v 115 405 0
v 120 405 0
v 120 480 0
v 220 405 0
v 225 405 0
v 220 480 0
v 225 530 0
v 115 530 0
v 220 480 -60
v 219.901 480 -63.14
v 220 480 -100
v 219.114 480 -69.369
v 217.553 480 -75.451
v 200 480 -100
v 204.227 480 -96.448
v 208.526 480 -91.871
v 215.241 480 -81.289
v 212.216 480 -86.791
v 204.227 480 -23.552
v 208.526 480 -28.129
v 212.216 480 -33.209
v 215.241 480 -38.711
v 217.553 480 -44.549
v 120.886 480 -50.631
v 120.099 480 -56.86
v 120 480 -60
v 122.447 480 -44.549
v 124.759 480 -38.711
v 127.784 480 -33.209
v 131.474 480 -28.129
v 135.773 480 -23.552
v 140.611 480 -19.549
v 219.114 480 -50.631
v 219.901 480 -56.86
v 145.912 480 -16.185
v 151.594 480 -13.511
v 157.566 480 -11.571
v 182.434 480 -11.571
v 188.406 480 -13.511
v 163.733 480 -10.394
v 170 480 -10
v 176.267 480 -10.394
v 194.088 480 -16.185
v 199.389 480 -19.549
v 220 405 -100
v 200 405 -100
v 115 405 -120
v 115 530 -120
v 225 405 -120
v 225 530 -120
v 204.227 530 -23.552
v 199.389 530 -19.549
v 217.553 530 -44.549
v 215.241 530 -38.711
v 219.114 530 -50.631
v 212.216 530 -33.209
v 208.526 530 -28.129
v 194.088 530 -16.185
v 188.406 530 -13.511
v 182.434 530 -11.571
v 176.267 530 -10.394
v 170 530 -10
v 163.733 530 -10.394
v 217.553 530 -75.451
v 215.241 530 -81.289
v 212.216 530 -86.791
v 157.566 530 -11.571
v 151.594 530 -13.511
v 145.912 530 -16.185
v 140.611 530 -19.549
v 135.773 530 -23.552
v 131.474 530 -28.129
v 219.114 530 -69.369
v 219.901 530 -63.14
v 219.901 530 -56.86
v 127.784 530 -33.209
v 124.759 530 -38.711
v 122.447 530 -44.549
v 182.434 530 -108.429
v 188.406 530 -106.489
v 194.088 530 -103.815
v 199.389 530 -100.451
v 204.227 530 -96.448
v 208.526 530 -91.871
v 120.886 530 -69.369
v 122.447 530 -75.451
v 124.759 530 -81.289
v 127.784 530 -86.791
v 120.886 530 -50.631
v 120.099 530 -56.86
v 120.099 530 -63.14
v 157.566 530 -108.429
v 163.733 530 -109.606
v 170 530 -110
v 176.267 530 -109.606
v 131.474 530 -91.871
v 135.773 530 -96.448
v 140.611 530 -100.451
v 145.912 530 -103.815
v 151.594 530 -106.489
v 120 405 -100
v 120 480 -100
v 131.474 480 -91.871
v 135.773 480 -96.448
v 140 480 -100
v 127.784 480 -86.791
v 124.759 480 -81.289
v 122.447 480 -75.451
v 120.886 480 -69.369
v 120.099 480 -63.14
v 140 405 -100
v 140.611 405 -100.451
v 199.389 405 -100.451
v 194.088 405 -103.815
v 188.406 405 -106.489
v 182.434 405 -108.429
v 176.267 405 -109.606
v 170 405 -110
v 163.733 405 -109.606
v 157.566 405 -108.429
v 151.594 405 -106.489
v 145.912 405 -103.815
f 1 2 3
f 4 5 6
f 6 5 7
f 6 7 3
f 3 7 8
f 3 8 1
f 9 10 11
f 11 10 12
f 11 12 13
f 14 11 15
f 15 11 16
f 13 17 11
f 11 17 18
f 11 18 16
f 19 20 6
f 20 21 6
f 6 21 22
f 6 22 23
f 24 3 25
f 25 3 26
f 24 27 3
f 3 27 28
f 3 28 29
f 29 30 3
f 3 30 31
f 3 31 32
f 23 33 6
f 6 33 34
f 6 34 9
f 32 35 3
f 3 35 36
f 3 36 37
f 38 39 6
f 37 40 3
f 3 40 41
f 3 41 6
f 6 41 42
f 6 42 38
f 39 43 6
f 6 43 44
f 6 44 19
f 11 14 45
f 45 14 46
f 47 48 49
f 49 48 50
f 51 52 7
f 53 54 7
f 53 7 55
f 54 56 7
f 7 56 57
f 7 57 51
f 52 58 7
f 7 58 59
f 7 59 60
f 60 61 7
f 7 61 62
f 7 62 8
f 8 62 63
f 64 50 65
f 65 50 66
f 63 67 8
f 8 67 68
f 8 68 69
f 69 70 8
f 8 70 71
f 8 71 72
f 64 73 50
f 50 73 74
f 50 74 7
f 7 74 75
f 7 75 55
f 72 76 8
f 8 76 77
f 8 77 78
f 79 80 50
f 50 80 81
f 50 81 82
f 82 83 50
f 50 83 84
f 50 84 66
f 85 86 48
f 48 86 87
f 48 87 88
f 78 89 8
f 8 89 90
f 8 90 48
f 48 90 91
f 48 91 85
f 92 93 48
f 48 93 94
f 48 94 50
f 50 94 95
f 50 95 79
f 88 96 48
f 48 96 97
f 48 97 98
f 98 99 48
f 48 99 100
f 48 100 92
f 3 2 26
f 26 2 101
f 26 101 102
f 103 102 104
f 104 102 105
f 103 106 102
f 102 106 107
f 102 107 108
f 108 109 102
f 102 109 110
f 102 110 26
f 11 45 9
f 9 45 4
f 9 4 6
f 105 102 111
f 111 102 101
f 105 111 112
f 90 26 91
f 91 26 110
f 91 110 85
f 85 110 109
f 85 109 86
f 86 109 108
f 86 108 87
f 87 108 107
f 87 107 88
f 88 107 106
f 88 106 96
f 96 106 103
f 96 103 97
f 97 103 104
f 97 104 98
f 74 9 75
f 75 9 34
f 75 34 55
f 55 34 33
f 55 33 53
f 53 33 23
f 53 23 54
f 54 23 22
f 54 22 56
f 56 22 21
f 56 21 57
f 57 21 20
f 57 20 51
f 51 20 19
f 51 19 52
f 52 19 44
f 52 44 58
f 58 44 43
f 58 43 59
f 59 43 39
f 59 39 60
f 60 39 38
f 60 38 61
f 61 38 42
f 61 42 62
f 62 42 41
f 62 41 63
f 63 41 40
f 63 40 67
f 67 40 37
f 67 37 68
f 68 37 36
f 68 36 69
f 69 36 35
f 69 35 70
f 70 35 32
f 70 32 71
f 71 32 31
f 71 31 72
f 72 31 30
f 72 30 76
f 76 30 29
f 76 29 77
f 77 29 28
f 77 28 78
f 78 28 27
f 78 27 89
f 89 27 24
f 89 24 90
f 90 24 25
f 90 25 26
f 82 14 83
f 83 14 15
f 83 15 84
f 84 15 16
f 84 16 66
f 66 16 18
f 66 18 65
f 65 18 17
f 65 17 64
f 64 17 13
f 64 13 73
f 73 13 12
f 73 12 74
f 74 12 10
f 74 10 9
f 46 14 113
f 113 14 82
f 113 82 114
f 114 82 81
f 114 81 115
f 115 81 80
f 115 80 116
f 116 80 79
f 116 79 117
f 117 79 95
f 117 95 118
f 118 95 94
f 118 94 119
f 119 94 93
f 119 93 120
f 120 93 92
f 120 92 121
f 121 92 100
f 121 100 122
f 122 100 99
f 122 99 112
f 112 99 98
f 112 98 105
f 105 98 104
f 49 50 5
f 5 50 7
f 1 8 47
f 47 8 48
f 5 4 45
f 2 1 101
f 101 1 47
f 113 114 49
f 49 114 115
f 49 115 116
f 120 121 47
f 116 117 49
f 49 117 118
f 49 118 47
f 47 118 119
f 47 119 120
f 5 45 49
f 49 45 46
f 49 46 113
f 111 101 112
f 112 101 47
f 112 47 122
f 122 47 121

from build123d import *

# Parameters (mm, degrees)
SKETCH1_W                      = 670
SKETCH1_H                      = 120
BOSS_EXTRUDE1_DEPTH            = 530
SKETCH2_W                      = 100
SKETCH2_H                      = 200
SKETCH2_W_2                    = 650
SKETCH2_H_2                    = 250
CUT_EXTRUDE1_DEPTH             = 100
SKETCH3_R                      = 50
CUT_EXTRUDE2_DEPTH             = 260
F_12_0_12_DIAMETER_HOLE2_D     = 12
F_12_0_12_DIAMETER_HOLE2_DEPTH = 30
F_12_0_12_DIAMETER_HOLE2_TIP   = 3.605163714
SKETCH8_W                      = 650
SKETCH8_H                      = 50
BOSS_EXTRUDE2_DEPTH            = 5
SKETCH9_W                      = 10
SKETCH9_H                      = 250
CUT_EXTRUDE3_DEPTH             = 717
CUT_EXTRUDE4_DEPTH             = 5
SKETCH11_W                     = 10
SKETCH11_H                     = 100
BOSS_EXTRUDE3_DEPTH            = 78
BOSS_EXTRUDE3_2_DEPTH          = 78
BOSS_EXTRUDE3_3_DEPTH          = 78
SKETCH12_W                     = 20
SKETCH12_H                     = 30
CUT_EXTRUDE5_DEPTH             = 80
SKETCH15_W                     = 30
SKETCH15_H                     = 23.536156656
SKETCH15_H_2                   = 28.986603691
CUT_EXTRUDE7_DEPTH             = 35
SHELL1_T                       = -3
SKETCH16_W                     = 14
SKETCH16_H                     = 14
CUT_EXTRUDE8_DEPTH             = 35
SKETCH17_W                     = 5.729882812
SKETCH17_H                     = 17.428393554
SKETCH17_W_2                   = 13.369726562
SKETCH17_H_2                   = 3.342431641
BOSS_EXTRUDE4_DEPTH            = 5
SKETCH18_W                     = 670
SKETCH18_H                     = 280
CUT_EXTRUDE10_DEPTH            = 159
CUT_EXTRUDE11_DEPTH            = 863.670273187
CUT_EXTRUDE11_DEPTH_BACK       = 863.670273187
SKETCH19_W                     = 115
SKETCH19_H                     = 250
SKETCH19_W_2                   = 445
CUT_EXTRUDE12_DEPTH            = 589.153891426
CUT_EXTRUDE12_DEPTH_BACK       = 589.153891426
SKETCH20_W                     = 110
SKETCH20_H                     = 125


with BuildPart() as part:
    # Sketch1 → Boss-Extrude1 (new body)
    with BuildSketch(Plane(origin=(0, 0, 0), x_dir=(1, 0, 0), z_dir=(0, 1, 0))):
        with Locations((335, 60)):
            Rectangle(SKETCH1_W, SKETCH1_H)
    extrude(amount=BOSS_EXTRUDE1_DEPTH)

    # Sketch2 → Cut-Extrude1 (cut)
    with BuildSketch(Plane.XY):
        with Locations((60, 380)):
            Rectangle(SKETCH2_W, SKETCH2_H)
        with Locations((170, 380)):
            Rectangle(SKETCH2_W, SKETCH2_H)
        with Locations((280, 380)):
            Rectangle(SKETCH2_W, SKETCH2_H)
        with Locations((390, 380)):
            Rectangle(SKETCH2_W, SKETCH2_H)
        with Locations((500, 380)):
            Rectangle(SKETCH2_W, SKETCH2_H)
        with Locations((610, 380)):
            Rectangle(SKETCH2_W, SKETCH2_H)
        with Locations((335, 135)):
            Rectangle(SKETCH2_W_2, SKETCH2_H_2)
    extrude(amount=-CUT_EXTRUDE1_DEPTH, mode=Mode.SUBTRACT)

    # Sketch3 → Cut-Extrude2 (cut)
    with BuildSketch(Plane(origin=(0, 530, 0), x_dir=(1, 0, 0), z_dir=(0, 1, 0))):
        with Locations(Location((60, 60, 0), (0, 0, 270))):
            Circle(SKETCH3_R)
        with Locations(Location((170, 60, 0), (0, 0, 270))):
            Circle(SKETCH3_R)
        with Locations(Location((280, 60, 0), (0, 0, 270))):
            Circle(SKETCH3_R)
        with Locations(Location((390, 60, 0), (0, 0, 270))):
            Circle(SKETCH3_R)
        with Locations(Location((500, 60, 0), (0, 0, 270))):
            Circle(SKETCH3_R)
        with Locations(Location((610, 60, 0), (0, 0, 270))):
            Circle(SKETCH3_R)
    extrude(amount=-CUT_EXTRUDE2_DEPTH, mode=Mode.SUBTRACT)

    # Ø12.0 (12) Diameter Hole2
    with Locations(Plane(origin=(59.704642413, 270, -102.411697903), x_dir=(0, 0, 1), z_dir=(0, 1, 0))):
        with Locations((0, 0), (-0.195888006, 111.8520513), (0.014838595, 221.167624818), (-0.341843303, 331.364008353), (0.657723149, 441.008646429), (1.288998006, 549.811854685)):
            Hole(F_12_0_12_DIAMETER_HOLE2_D / 2, depth=F_12_0_12_DIAMETER_HOLE2_DEPTH)
            with Locations((0, 0, -(F_12_0_12_DIAMETER_HOLE2_DEPTH + F_12_0_12_DIAMETER_HOLE2_TIP / 2))):  # 118° drill point
                Cone(0, F_12_0_12_DIAMETER_HOLE2_D / 2, F_12_0_12_DIAMETER_HOLE2_TIP, mode=Mode.SUBTRACT)

    # Sketch8 → Boss-Extrude2 (add)
    with BuildSketch(Plane.XY):
        with Locations((335, 305)):
            Rectangle(SKETCH8_W, SKETCH8_H)
    extrude(amount=-BOSS_EXTRUDE2_DEPTH)

    # Sketch9 → Cut-Extrude3 (cut)
    with BuildSketch(Plane(origin=(670, 0, 0), x_dir=(0, 0, -1), z_dir=(1, 0, 0))):
        with Locations((15, 135)):
            Rectangle(SKETCH9_W, SKETCH9_H)
    extrude(amount=-CUT_EXTRUDE3_DEPTH, mode=Mode.SUBTRACT)

    # Sketch10 → Cut-Extrude4 (cut)
    with BuildSketch(Plane(origin=(0, 10, 0), x_dir=(1, 0, 0), z_dir=(0, 1, 0))):
        Polygon((365, 61.943560596), (350, 87.924322709), (320, 87.924322709), (305, 61.943560596), (320, 35.962798482), (350, 35.962798482), align=None)
    extrude(amount=-CUT_EXTRUDE4_DEPTH, mode=Mode.SUBTRACT)

    # Sketch12 → Cut-Extrude5 (cut)
    with BuildSketch(Plane.XY.offset(-100)):
        with Locations((85.198613037, 245)):
            Rectangle(SKETCH12_W, SKETCH12_H)
        with Locations((195.198613037, 245)):
            Rectangle(SKETCH12_W, SKETCH12_H)
        with Locations((305.198613037, 245)):
            Rectangle(SKETCH12_W, SKETCH12_H)
        with Locations((415.198613037, 245)):
            Rectangle(SKETCH12_W, SKETCH12_H)
        with Locations((525.198613037, 245)):
            Rectangle(SKETCH12_W, SKETCH12_H)
        with Locations((635.198613037, 245)):
            Rectangle(SKETCH12_W, SKETCH12_H)
    extrude(amount=-CUT_EXTRUDE5_DEPTH, mode=Mode.SUBTRACT)

    # Sketch17 → Boss-Extrude4 (add)
    # profile 1 of 9: a face of its own
    with BuildSketch(Plane.XY):
        with BuildLine():
            Line((527.508830928, 289.835452458), (527.508830928, 307.263846012))
            Line((527.508830928, 307.263846012), (534.861434459, 307.263846012))
            add(Edge.make_bspline(
                [(534.861434459, 307.263846012), (535.181337774, 307.258256848), (535.803061116, 307.24739446), (536.703508491, 307.139069344), (537.544992916, 306.975202489), (538.325061607, 306.737496792), (539.040841948, 306.426020155), (539.698044515, 306.051894954), (540.290333057, 305.605079277), (540.822348212, 305.090232636), (541.284521701, 304.502523111), (541.692171296, 303.852565801), (542.030284458, 303.129762281), (542.309377095, 302.341316546), (542.5243908, 301.484161689), (542.679660381, 300.560045938), (542.773357357, 299.567500804), (542.783368073, 298.883107022), (542.788518428, 298.530997273)],
                knots=[0, 0, 0, 0, 1.135059408, 2.20595691, 3.214417064, 4.174978569, 5.094187092, 5.980001006, 6.853065862, 7.720814779, 8.600404634, 9.50058483, 10.438414914, 11.426825708, 12.465239141, 13.571113463, 14.750376389, 16, 16, 16, 16], degree=3))
            add(Edge.make_bspline(
                [(542.788518428, 298.530997273), (542.781740751, 298.180151665), (542.768592871, 297.499553336), (542.676885992, 296.511518461), (542.516733301, 295.591080531), (542.296748778, 294.736450427), (542.003051046, 293.953120444), (541.654236167, 293.233205539), (541.233025793, 292.585291498), (540.753136904, 292.000029304), (540.204772188, 291.484681411), (539.587651059, 291.044279297), (538.910779309, 290.668464036), (538.169670382, 290.361903209), (537.364073889, 290.124869172), (536.495133477, 289.954199984), (535.562644449, 289.853487388), (534.920131033, 289.841584621), (534.58911581, 289.835452458)],
                knots=[0, 0, 0, 0, 1.228418252, 2.382983832, 3.470276728, 4.496757894, 5.468023682, 6.394867725, 7.292157164, 8.167372942, 9.039072913, 9.918728341, 10.815246345, 11.744296628, 12.720973084, 13.750736166, 14.841206188, 16, 16, 16, 16], degree=3))
            Line((534.58911581, 289.835452458), (527.508830928, 289.835452458))
        make_face()
        with BuildLine():
            Line((533.238713741, 291.745413395), (534.048208904, 291.745413395))
            add(Edge.make_bspline(
                [(534.048208904, 291.745413395), (534.172894012, 291.749291978), (534.413033311, 291.756761998), (534.758676231, 291.825976613), (535.075745017, 291.938271137), (535.365749176, 292.094802589), (535.623404602, 292.300450923), (535.848862806, 292.551404902), (536.04776914, 292.844737637), (536.217685755, 293.190205032), (536.364284647, 293.596533622), (536.481764702, 294.076367921), (536.592118304, 294.630928744), (536.673672739, 295.265507643), (536.740044562, 295.978448886), (536.788346679, 296.768428292), (536.812018936, 297.636801208), (536.817188964, 298.241258393), (536.819890499, 298.55711002)],
                knots=[0, 0, 0, 0, 0.728710832, 1.403472396, 2.052289494, 2.690292559, 3.321919393, 3.970736491, 4.656696891, 5.388631723, 6.217040872, 7.17856157, 8.275589967, 9.523440737, 10.918935818, 12.463926104, 14.152268318, 16, 16, 16, 16], degree=3))
            add(Edge.make_bspline(
                [(536.819890499, 298.55711002), (536.8171426, 298.871715251), (536.811863063, 299.476166083), (536.7886758, 300.343334385), (536.739579947, 301.133216935), (536.674703848, 301.843934916), (536.589660404, 302.476324031), (536.488366458, 303.031681737), (536.362441588, 303.507627045), (536.222158727, 303.914921549), (536.050140993, 304.256514038), (535.858357073, 304.554097881), (535.62547107, 304.79746827), (535.36991257, 305.004888479), (535.079348843, 305.160875844), (534.761320266, 305.273944358), (534.414185903, 305.34216807), (534.172870641, 305.349893944), (534.048208904, 305.353885075)],
                knots=[0, 0, 0, 0, 1.842836665, 3.540640921, 5.080358154, 6.47765669, 7.719902824, 8.816971715, 9.781579111, 10.601733135, 11.334613876, 12.017393917, 12.666641099, 13.29908421, 13.937911793, 14.587567384, 15.270347425, 16, 16, 16, 16], degree=3))
            Line((534.048208904, 305.353885075), (533.238713741, 305.353885075))
            Line((533.238713741, 305.353885075), (533.238713741, 291.745413395))
        make_face(mode=Mode.SUBTRACT)
    # profile 2 of 9: a face of its own
    with BuildSketch(Plane.XY):
        with Locations((547.563420772, 298.549649235)):
            Rectangle(SKETCH17_W, SKETCH17_H)
    # profile 3 of 9: a face of its own
    with BuildSketch(Plane.XY):
        Polygon((564.514324092, 307.263846012), (564.514324092, 305.115139958), (558.545696163, 305.115139958), (558.545696163, 299.862747379), (563.559343624, 299.862747379), (563.559343624, 297.714041325), (558.545696163, 297.714041325), (558.545696163, 289.835452458), (552.81581335, 289.835452458), (552.81581335, 307.263846012), align=None)
    # profile 4 of 9: a face of its own
    with BuildSketch(Plane.XY):
        Polygon((577.645305538, 307.263846012), (577.645305538, 305.115139958), (571.676677608, 305.115139958), (571.676677608, 299.862747379), (576.690325069, 299.862747379), (576.690325069, 297.714041325), (571.676677608, 297.714041325), (571.676677608, 289.835452458), (565.946794795, 289.835452458), (565.946794795, 307.263846012), align=None)
    # profile 5 of 9: a face of its own
    with BuildSketch(Plane.XY):
        with Locations((584.330168819, 287.448001286)):
            Rectangle(SKETCH17_W_2, SKETCH17_H_2)
    # profile 6 of 9: a face of its own
    with BuildSketch(Plane.XY):
        with BuildLine():
            Line((605.578484249, 307.263846012), (605.578484249, 295.602639195))
            add(Edge.make_bspline(
                [(605.578484249, 295.602639195), (605.574209777, 295.35989389), (605.565919345, 294.889083964), (605.480877158, 294.20653885), (605.349958188, 293.569747554), (605.15926554, 292.978838165), (604.911867049, 292.436847071), (604.616163877, 291.936663973), (604.260702644, 291.487723021), (603.847299908, 291.08966617), (603.386881991, 290.731670113), (602.867295001, 290.425440037), (602.293741958, 290.168488385), (601.66690529, 289.960990771), (600.988052682, 289.797299786), (600.254912883, 289.679078851), (599.467035781, 289.60781007), (598.923618241, 289.60048219), (598.643684673, 289.59670734)],
                knots=[0, 0, 0, 0, 1.108173197, 2.149326602, 3.136215123, 4.073726706, 4.978516626, 5.852185058, 6.72141202, 7.584905625, 8.467554395, 9.379216169, 10.332422268, 11.332766067, 12.390653242, 13.518530507, 14.721707419, 16, 16, 16, 16], degree=3))
            add(Edge.make_bspline(
                [(598.643684673, 289.59670734), (598.373688491, 289.600411437), (597.851346557, 289.607577482), (597.093280473, 289.679448684), (596.387523889, 289.797736542), (595.733050135, 289.960122315), (595.130189942, 290.169220301), (594.579048171, 290.42623041), (594.078350789, 290.732835498), (593.633858028, 291.090104794), (593.234289459, 291.486851767), (592.899913678, 291.940746827), (592.609043638, 292.435866034), (592.375223767, 292.980322997), (592.191754821, 293.570441519), (592.063541006, 294.20666921), (591.983676196, 294.889343196), (591.974661767, 295.359932437), (591.970012569, 295.602639195)],
                knots=[0, 0, 0, 0, 1.258901956, 2.435505865, 3.547148904, 4.59359074, 5.576649289, 6.5183682, 7.424469602, 8.307507093, 9.172751023, 10.042627298, 10.928839176, 11.845659241, 12.799442865, 13.80597989, 14.868432463, 16, 16, 16, 16], degree=3))
            Line((591.970012569, 295.602639195), (591.970012569, 307.263846012))
            Line((591.970012569, 307.263846012), (597.699895381, 307.263846012))
            Line((597.699895381, 307.263846012), (597.699895381, 295.457153889))
            add(Edge.make_bspline(
                [(597.699895381, 295.457153889), (597.700816195, 295.287996189), (597.702584578, 294.963135903), (597.729908723, 294.499051493), (597.768241004, 294.079064133), (597.828226169, 293.705517832), (597.90066041, 293.377063412), (597.989882091, 293.09281535), (598.094998068, 292.852496478), (598.225239063, 292.654232043), (598.380826623, 292.495135011), (598.55368342, 292.353231761), (598.757556996, 292.238543846), (598.987648905, 292.146224908), (599.243380948, 292.070549638), (599.526120553, 292.020376099), (599.83553351, 291.990763905), (600.049971942, 291.986424568), (600.161954402, 291.984158512)],
                knots=[0, 0, 0, 0, 1.622370975, 3.115695595, 4.458049099, 5.666011203, 6.742434742, 7.681714947, 8.519814998, 9.250928664, 9.942747364, 10.646898194, 11.389596108, 12.175933929, 13.021386247, 13.943159715, 14.925891993, 16, 16, 16, 16], degree=3))
            add(Edge.make_bspline(
                [(600.161954402, 291.984158512), (600.283927219, 291.987190593), (600.521124756, 291.993087005), (600.86597014, 292.03390861), (601.187714881, 292.103380086), (601.484890424, 292.205377303), (601.758665297, 292.332852529), (602.012761516, 292.484567923), (602.236391413, 292.674631152), (602.439076761, 292.888441291), (602.620738276, 293.128529789), (602.771757722, 293.399928575), (602.905501548, 293.697121508), (603.005823683, 294.025060118), (603.089837826, 294.379999499), (603.146989706, 294.763086929), (603.186210275, 295.174074524), (603.189394751, 295.457053988), (603.191033077, 295.602639195)],
                knots=[0, 0, 0, 0, 1.083870311, 2.107775948, 3.08105344, 4.003637981, 4.893545291, 5.761570557, 6.624657808, 7.49233129, 8.376387281, 9.291996285, 10.246843261, 11.267344133, 12.334180325, 13.486053461, 14.706643157, 16, 16, 16, 16], degree=3))
            Line((603.191033077, 295.602639195), (603.191033077, 307.263846012))
            Line((603.191033077, 307.263846012), (605.578484249, 307.263846012))
        make_face()
    # profile 7 of 9: a face of its own
    with BuildSketch(Plane.XY):
        with BuildLine():
            Line((619.731593227, 302.015183827), (616.739818477, 301.526502415))
            add(Edge.make_bspline(
                [(616.739818477, 301.526502415), (616.748849224, 301.670726223), (616.765660669, 301.939210177), (616.78429066, 302.312269209), (616.796668381, 302.625642376), (616.798628236, 302.814722915), (616.799504756, 302.899286839)],
                knots=[0, 0, 0, 0, 1.261802504, 2.348944521, 3.261585937, 4, 4, 4, 4], degree=3))
            add(Edge.make_bspline(
                [(616.799504756, 302.899286839), (616.798306068, 303.007660677), (616.795968139, 303.219033721), (616.750451916, 303.523894877), (616.694806916, 303.811547356), (616.604352699, 304.076787391), (616.488181329, 304.320314265), (616.348943917, 304.543955606), (616.184187178, 304.745078709), (615.995833421, 304.928129987), (615.778009957, 305.083200131), (615.536269472, 305.218702836), (615.269765326, 305.333844758), (614.978065514, 305.431346685), (614.660683072, 305.504624438), (614.319025281, 305.556776695), (613.952471696, 305.585673441), (613.699597795, 305.590260771), (613.568984889, 305.592630192)],
                knots=[0, 0, 0, 0, 1.079280541, 2.105035848, 3.067950317, 3.99715044, 4.889989748, 5.753421302, 6.617030865, 7.476358039, 8.364190572, 9.274590025, 10.235106994, 11.254473582, 12.337095886, 13.478601727, 14.697662529, 16, 16, 16, 16], degree=3))
            add(Edge.make_bspline(
                [(613.568984889, 305.592630192), (613.391954632, 305.58912286), (613.059112606, 305.582528579), (612.595688488, 305.495339748), (612.198743126, 305.361419257), (611.87165349, 305.163811893), (611.613188167, 304.909795747), (611.433841092, 304.593316589), (611.323009072, 304.224665915), (611.313400221, 303.959558324), (611.308367061, 303.820693775)],
                knots=[0, 0, 0, 0, 1.294917039, 2.43462794, 3.440028966, 4.347597256, 5.210608309, 6.06356377, 6.985685997, 8, 8, 8, 8], degree=3))
            add(Edge.make_bspline(
                [(611.308367061, 303.820693775), (611.317562032, 303.705133219), (611.336106628, 303.472068433), (611.47315858, 303.132808312), (611.695999602, 302.811560885), (612.009295906, 302.510664216), (612.404107796, 302.221967273), (612.884407504, 301.948533431), (613.450813789, 301.688189695), (613.862519081, 301.536023727), (614.080048656, 301.455624958)],
                knots=[0, 0, 0, 0, 0.716839541, 1.445735977, 2.240793036, 3.131329288, 4.131129903, 5.273471266, 6.559404876, 8, 8, 8, 8], degree=3))
            add(Edge.make_bspline(
                [(614.080048656, 301.455624958), (614.335934702, 301.364918412), (614.834564244, 301.188164095), (615.547657928, 300.88707802), (616.213068388, 300.5749594), (616.829579094, 300.246613346), (617.397833174, 299.90520698), (617.914851624, 299.544556457), (618.386199073, 299.173962102), (618.807001026, 298.783874588), (619.177995113, 298.378100064), (619.4958685, 297.952745357), (619.771807525, 297.51723103), (619.991113975, 297.061458502), (620.169645242, 296.594624218), (620.292698657, 296.11024444), (620.364288243, 295.609761088), (620.37516617, 295.270864226), (620.380681514, 295.099036213)],
                knots=[0, 0, 0, 0, 1.359488612, 2.649152603, 3.874964776, 5.039588756, 6.146130126, 7.193090393, 8.194917302, 9.146793662, 10.063845301, 10.944476293, 11.803344532, 12.641736646, 13.473440096, 14.302714936, 15.139439897, 16, 16, 16, 16], degree=3))
            add(Edge.make_bspline(
                [(620.380681514, 295.099036213), (620.374476075, 294.902306495), (620.362285176, 294.515820995), (620.280160209, 293.948630617), (620.138011896, 293.409496554), (619.938489338, 292.895972278), (619.681049879, 292.411946655), (619.366518754, 291.954381076), (618.996510229, 291.525099427), (618.5710008, 291.128381035), (618.102222518, 290.765302239), (617.587803957, 290.450854345), (617.034458515, 290.187092261), (616.444107988, 289.968993032), (615.81453624, 289.801373099), (615.145337453, 289.685291013), (614.438790193, 289.606619894), (613.954683001, 289.600062276), (613.70700941, 289.59670734)],
                knots=[0, 0, 0, 0, 0.972121714, 1.909782367, 2.824924061, 3.721832975, 4.62620438, 5.527836938, 6.46026819, 7.421000932, 8.398101015, 9.385579713, 10.394244048, 11.422703992, 12.491421888, 13.608778581, 14.776629625, 16, 16, 16, 16], degree=3))
            add(Edge.make_bspline(
                [(613.70700941, 289.59670734), (613.445745367, 289.599650312), (612.939893069, 289.605348413), (612.207608113, 289.66709241), (611.525297432, 289.760984454), (610.893395078, 289.899706116), (610.309273131, 290.072394336), (609.776099392, 290.288320955), (609.295310255, 290.547303481), (608.863217672, 290.843007892), (608.478306623, 291.175775461), (608.148120946, 291.551766865), (607.86942369, 291.967163224), (607.639947144, 292.421521488), (607.466477665, 292.917583541), (607.339164663, 293.449829748), (607.264537999, 294.021332449), (607.254747521, 294.414908557), (607.249700069, 294.617815586)],
                knots=[0, 0, 0, 0, 1.342201143, 2.598733168, 3.773451092, 4.878874364, 5.91991243, 6.900006476, 7.829142054, 8.72062616, 9.585588575, 10.436728592, 11.283829734, 12.149664931, 13.044964919, 13.977937424, 14.957531465, 16, 16, 16, 16], degree=3))
            add(Edge.make_bspline(
                [(607.249700069, 294.617815586), (607.250803815, 294.692425759), (607.253213998, 294.855347393), (607.260452266, 295.122772538), (607.275636683, 295.433682216), (607.29037174, 295.656130545), (607.298195171, 295.774237248)],
                knots=[0, 0, 0, 0, 0.773500207, 1.689044709, 2.77302154, 4, 4, 4, 4], degree=3))
            Line((607.298195171, 295.774237248), (610.36457777, 296.337526509))
            add(Edge.make_bspline(
                [(610.36457777, 296.337526509), (610.326952988, 296.136337493), (610.255606535, 295.754830366), (610.178678473, 295.21219969), (610.124206629, 294.733311493), (610.11767002, 294.435147371), (610.114641475, 294.297001835)],
                knots=[0, 0, 0, 0, 1.192988372, 2.262218769, 3.194850416, 4, 4, 4, 4], degree=3))
            add(Edge.make_bspline(
                [(610.114641475, 294.297001835), (610.116191817, 294.183708768), (610.119182568, 293.965156219), (610.159053378, 293.648552813), (610.215988606, 293.352999663), (610.302906772, 293.079707227), (610.411206928, 292.826307836), (610.544682453, 292.59538211), (610.704385489, 292.386485019), (610.887496571, 292.200099922), (611.094689168, 292.033628705), (611.327456494, 291.892756696), (611.58347653, 291.771733922), (611.864681562, 291.677479524), (612.167961721, 291.596080628), (612.497219749, 291.548235723), (612.849461228, 291.512043782), (613.092629543, 291.508500084), (613.218327999, 291.506668278)],
                knots=[0, 0, 0, 0, 1.135776692, 2.191015738, 3.19649269, 4.151244236, 5.061952528, 5.956281389, 6.819534407, 7.692823504, 8.571441916, 9.478554956, 10.416037156, 11.406231466, 12.450054172, 13.561596327, 14.739541482, 16, 16, 16, 16], degree=3))
            add(Edge.make_bspline(
                [(613.218327999, 291.506668278), (613.423996012, 291.510791273), (613.810619321, 291.518541853), (614.349272542, 291.616708407), (614.810575885, 291.768742445), (615.189785268, 291.991387532), (615.490778961, 292.278756613), (615.698005174, 292.637320004), (615.824813318, 293.05638326), (615.837728413, 293.355975238), (615.844524288, 293.513619419)],
                knots=[0, 0, 0, 0, 1.308765556, 2.460272085, 3.475015317, 4.388076298, 5.239673503, 6.095681635, 6.997954785, 8, 8, 8, 8], degree=3))
            add(Edge.make_bspline(
                [(615.844524288, 293.513619419), (615.833808824, 293.638242951), (615.811807312, 293.894126055), (615.644884004, 294.264515838), (615.382382362, 294.620631473), (615.016807277, 294.962984909), (614.551376589, 295.293471235), (613.986957743, 295.616730224), (613.322148235, 295.933112033), (612.83677959, 296.119639164), (612.580430889, 296.21815395)],
                knots=[0, 0, 0, 0, 0.667930748, 1.371427933, 2.146459016, 3.034714139, 4.04893387, 5.207327294, 6.525042705, 8, 8, 8, 8], degree=3))
            add(Edge.make_bspline(
                [(612.580430889, 296.21815395), (612.374354345, 296.29679374), (611.970646869, 296.450850434), (611.394079385, 296.713586304), (610.853066711, 296.987016804), (610.357486361, 297.288235735), (609.896382561, 297.599610528), (609.477036946, 297.932256792), (609.09841673, 298.284556341), (608.758710772, 298.653375077), (608.457302107, 299.038989264), (608.199448649, 299.444659231), (607.977533299, 299.866789834), (607.798609588, 300.308107488), (607.65975715, 300.767821241), (607.559616231, 301.244439392), (607.497905054, 301.739995674), (607.491630423, 302.075933546), (607.488445186, 302.246468159)],
                knots=[0, 0, 0, 0, 1.249558333, 2.447906163, 3.58867143, 4.682264114, 5.731748367, 6.739728761, 7.711906036, 8.659384707, 9.578321416, 10.481344598, 11.379544271, 12.277135726, 13.175418307, 14.097160112, 15.034047388, 16, 16, 16, 16], degree=3))
            add(Edge.make_bspline(
                [(607.488445186, 302.246468159), (607.49282555, 302.439538736), (607.501402184, 302.817565692), (607.587451154, 303.36980586), (607.719291893, 303.894921371), (607.910558542, 304.389343064), (608.156192894, 304.852853762), (608.453187669, 305.288766511), (608.804241719, 305.697593471), (609.213503754, 306.066686531), (609.657214714, 306.407618241), (610.14376173, 306.697651931), (610.658716537, 306.950861947), (611.210636666, 307.148827868), (611.791820619, 307.313252612), (612.408080529, 307.421140415), (613.056315391, 307.490701612), (613.499160755, 307.498567824), (613.725661373, 307.502591129)],
                knots=[0, 0, 0, 0, 1.01033566, 1.978209831, 2.919499157, 3.840961976, 4.746855014, 5.660740114, 6.597989116, 7.56120833, 8.541877795, 9.523498025, 10.522416858, 11.542172371, 12.589598349, 13.681636521, 14.814234488, 16, 16, 16, 16], degree=3))
            add(Edge.make_bspline(
                [(613.725661373, 307.502591129), (613.968269855, 307.498219033), (614.438190994, 307.489750488), (615.120391152, 307.426787419), (615.755073228, 307.319142339), (616.345153155, 307.171557286), (616.887304575, 306.977590666), (617.384933999, 306.742393454), (617.834452216, 306.46201507), (618.236961315, 306.139451502), (618.593086714, 305.773322851), (618.897467704, 305.361641069), (619.158701245, 304.909408454), (619.366684143, 304.412232174), (619.529870326, 303.873247147), (619.649133834, 303.29158184), (619.720420497, 302.667301443), (619.72779778, 302.236712324), (619.731593227, 302.015183827)],
                knots=[0, 0, 0, 0, 1.248314423, 2.417925914, 3.521398822, 4.558068205, 5.543720209, 6.479599284, 7.385061127, 8.263440163, 9.127722873, 10.00561236, 10.891325273, 11.808802823, 12.772251995, 13.784947978, 14.860405143, 16, 16, 16, 16], degree=3))
        make_face()
    # profile 8 of 9: a face of its own
    with BuildSketch(Plane.XY):
        Polygon((633.989153194, 307.263846012), (633.989153194, 305.115139958), (628.020525264, 305.115139958), (628.020525264, 300.340237614), (633.034172725, 300.340237614), (633.034172725, 298.191531559), (628.020525264, 298.191531559), (628.020525264, 291.984158512), (634.944133663, 291.984158512), (634.944133663, 289.835452458), (622.290642452, 289.835452458), (622.290642452, 307.263846012), align=None)
    # profile 9 of 9: a face of its own
    with BuildSketch(Plane.XY):
        with BuildLine():
            Line((636.376604366, 289.835452458), (636.376604366, 307.263846012))
            Line((636.376604366, 307.263846012), (643.990335369, 307.263846012))
            add(Edge.make_bspline(
                [(643.990335369, 307.263846012), (644.237946498, 307.261150834), (644.721600887, 307.25588639), (645.426490561, 307.189203683), (646.094808274, 307.090496236), (646.724915796, 306.949857504), (647.317873659, 306.767252686), (647.871119087, 306.542146), (648.390701058, 306.282329135), (648.864494846, 305.976472528), (649.295093616, 305.642889252), (649.669668547, 305.279483604), (649.990389523, 304.894749072), (650.250664962, 304.483256345), (650.454275633, 304.048690948), (650.59581384, 303.587791605), (650.684089268, 303.104102537), (650.695510601, 302.772834174), (650.701311397, 302.604585835)],
                knots=[0, 0, 0, 0, 1.303269877, 2.545653735, 3.724355284, 4.8584284, 5.941462088, 6.987020715, 8.000098032, 8.995332524, 9.951400474, 10.863507538, 11.737823931, 12.582415999, 13.420128714, 14.25671499, 15.114600608, 16, 16, 16, 16], degree=3))
            add(Edge.make_bspline(
                [(650.701311397, 302.604585835), (650.698282873, 302.472674957), (650.692382063, 302.215658276), (650.651041486, 301.838684287), (650.580643818, 301.480313933), (650.481036683, 301.139915259), (650.347814833, 300.820175594), (650.191279492, 300.517863507), (650.009772227, 300.230553342), (649.788675198, 299.970497982), (649.548268341, 299.722842359), (649.274558803, 299.497116911), (648.974487035, 299.288655528), (648.642526299, 299.104010513), (648.287619671, 298.928055749), (647.899038177, 298.784921972), (647.486819978, 298.644749395), (647.19793098, 298.577036306), (647.049257183, 298.54218845)],
                knots=[0, 0, 0, 0, 1.057156483, 2.059775939, 3.035078039, 3.981068617, 4.897189472, 5.80650904, 6.70770952, 7.613691521, 8.536886357, 9.470937334, 10.45233069, 11.461024139, 12.51295332, 13.623444893, 14.776929983, 16, 16, 16, 16], degree=3))
            add(Edge.make_bspline(
                [(647.049257183, 298.54218845), (647.19164695, 298.499279419), (647.467865022, 298.416041346), (647.856360945, 298.265600017), (648.211652989, 298.111536308), (648.524185739, 297.936781388), (648.807636894, 297.762122504), (649.047122259, 297.564301324), (649.255235567, 297.361673563), (649.425188343, 297.135464734), (649.570253643, 296.882344437), (649.694827156, 296.586596707), (649.815179167, 296.247423665), (649.917667348, 295.859098311), (650.004750555, 295.423699276), (650.088222437, 294.944027189), (650.153853601, 294.416024546), (650.187587341, 294.048412906), (650.2051692, 293.856815525)],
                knots=[0, 0, 0, 0, 1.149282524, 2.229462177, 3.219229774, 4.139917433, 4.995948464, 5.788695735, 6.536448429, 7.236319808, 7.968460079, 8.78645307, 9.713791991, 10.749194692, 11.887975363, 13.146018663, 14.512518948, 16, 16, 16, 16], degree=3))
            add(Edge.make_bspline(
                [(650.2051692, 293.856815525), (650.225980287, 293.627849833), (650.265975604, 293.187817268), (650.348933081, 292.554613589), (650.44386163, 291.974357025), (650.555874504, 291.44528724), (650.681301216, 290.967898855), (650.821280597, 290.540469593), (650.979920039, 290.165788217), (651.10484481, 289.941461656), (651.163880062, 289.835452458)],
                knots=[0, 0, 0, 0, 1.324580516, 2.545615266, 3.678710841, 4.711533017, 5.660403917, 6.521349952, 7.301239649, 8, 8, 8, 8], degree=3))
            Line((651.163880062, 289.835452458), (645.213904094, 289.835452458))
            add(Edge.make_bspline(
                [(645.213904094, 289.835452458), (645.12229736, 290.069847279), (644.935171241, 290.548648246), (644.7595281, 291.319414791), (644.64846922, 292.142514735), (644.635117598, 292.70994511), (644.628232479, 293.002555653)],
                knots=[0, 0, 0, 0, 0.930410518, 1.900560147, 2.917368081, 4, 4, 4, 4], degree=3))
            Line((644.628232479, 293.002555653), (644.605850124, 294.002300831))
            Line((644.605850124, 294.002300831), (644.579737377, 295.266903874))
            add(Edge.make_bspline(
                [(644.579737377, 295.266903874), (644.573694669, 295.477395004), (644.562357007, 295.872330118), (644.469348432, 296.426164013), (644.30178735, 296.894645884), (644.073222546, 297.287223005), (643.766741442, 297.590613479), (643.39104803, 297.804152917), (642.950456912, 297.93396284), (642.634664848, 297.946292392), (642.468335247, 297.952786442)],
                knots=[0, 0, 0, 0, 1.295300309, 2.430314163, 3.439929415, 4.342995669, 5.203512789, 6.060756153, 6.978588463, 8, 8, 8, 8], degree=3))
            Line((642.468335247, 297.952786442), (642.106487178, 297.952786442))
            Line((642.106487178, 297.952786442), (642.106487178, 289.835452458))
            Line((642.106487178, 289.835452458), (636.376604366, 289.835452458))
        make_face()
        with BuildLine():
            Line((642.106487178, 299.862747379), (642.617550945, 299.862747379))
            add(Edge.make_bspline(
                [(642.617550945, 299.862747379), (642.722054451, 299.865172716), (642.925280724, 299.869889229), (643.220054897, 299.898289891), (643.494111408, 299.951809873), (643.749840966, 300.021017819), (643.984372137, 300.114851792), (644.200147241, 300.225818296), (644.391160406, 300.362685327), (644.565327067, 300.516342321), (644.718148635, 300.691986294), (644.850351299, 300.889034217), (644.961199162, 301.106225057), (645.056078491, 301.342818683), (645.125883912, 301.600830857), (645.173262731, 301.879472914), (645.203404658, 302.177423605), (645.207875435, 302.383174491), (645.210173702, 302.488943669)],
                knots=[0, 0, 0, 0, 1.184986479, 2.304423995, 3.352332712, 4.347714965, 5.303263624, 6.211353909, 7.091434645, 7.960150225, 8.839440182, 9.723126897, 10.64371617, 11.599264829, 12.608232147, 13.667459739, 14.800924404, 16, 16, 16, 16], degree=3))
            add(Edge.make_bspline(
                [(645.210173702, 302.488943669), (645.207875435, 302.594712847), (645.203404658, 302.800463732), (645.173262731, 303.098414423), (645.125883912, 303.37705648), (645.056078491, 303.635068654), (644.961199162, 303.87166228), (644.850351299, 304.08885312), (644.718148635, 304.285901043), (644.565327067, 304.461545017), (644.391160406, 304.61520201), (644.200147241, 304.752069041), (643.984372137, 304.863035546), (643.749840966, 304.956869518), (643.494111408, 305.026077464), (643.220054897, 305.079597446), (642.925280724, 305.107998108), (642.722054451, 305.112714621), (642.617550945, 305.115139958)],
                knots=[0, 0, 0, 0, 1.199075596, 2.332540261, 3.391767853, 4.400735171, 5.35628383, 6.276873103, 7.160559818, 8.039849775, 8.908565355, 9.788646091, 10.696736376, 11.652285035, 12.647667288, 13.695576005, 14.815013521, 16, 16, 16, 16], degree=3))
            Line((642.617550945, 305.115139958), (642.106487178, 305.115139958))
            Line((642.106487178, 305.115139958), (642.106487178, 299.862747379))
        make_face(mode=Mode.SUBTRACT)
    extrude(amount=BOSS_EXTRUDE4_DEPTH)


with BuildPart() as body_2:
    # Sketch11 → Boss-Extrude3 (new body)
    with BuildSketch(Plane.XY.offset(-100)):
        with Locations((255, 60)):
            Rectangle(SKETCH11_W, SKETCH11_H)
    extrude(amount=BOSS_EXTRUDE3_DEPTH)


with BuildPart() as body_3:
    # Sketch11 → Boss-Extrude3 2 (new body)
    with BuildSketch(Plane.XY.offset(-100)):
        with Locations((415, 60)):
            Rectangle(SKETCH11_W, SKETCH11_H)
    extrude(amount=BOSS_EXTRUDE3_2_DEPTH)


with BuildPart() as body_4:
    # Sketch11 → Boss-Extrude3 3 (new body)
    with BuildSketch(Plane.XY.offset(-100)):
        Polygon((25, 198.45686471), (325, 145.558770497), (325, 122.01775856), (345, 122.01775856), (345, 145.558770497), (645, 198.45686471), align=None)
    extrude(amount=BOSS_EXTRUDE3_3_DEPTH)

    # Sketch15 → Cut-Extrude7 (cut)
    with BuildSketch(Plane(origin=(345, 0, 0), x_dir=(0, 0, -1), z_dir=(1, 0, 0))):
        with Locations((35, 133.231921672)):
            Rectangle(SKETCH15_W, SKETCH15_H)
        with Locations((85, 130.506698154)):
            Rectangle(SKETCH15_W, SKETCH15_H_2)
    extrude(amount=-CUT_EXTRUDE7_DEPTH, mode=Mode.SUBTRACT)

    # Shell1
    shell1_openings = [body_4.faces().sort_by_distance(p)[0] for p in [
        (335, 198.45686471, -61),
    ]]
    offset(amount=SHELL1_T, openings=shell1_openings, kind=Kind.INTERSECTION)

    # Sketch16 → Cut-Extrude8 (cut)
    with BuildSketch(Plane.XZ.offset(-122.01775856)):
        with Locations((335, -60)):
            Rectangle(SKETCH16_W, SKETCH16_H)
    extrude(amount=-CUT_EXTRUDE8_DEPTH, mode=Mode.SUBTRACT)


with BuildPart() as cut_extrude10_tool:
    # Sketch18 → Cut-Extrude10 (new body)
    with BuildSketch(Plane.XY):
        with Locations((335, 140)):
            Rectangle(SKETCH18_W, SKETCH18_H)
    extrude(amount=-CUT_EXTRUDE10_DEPTH)


with BuildPart() as part_1:
    add(part.part)

    # Cut-Extrude10: cut by cut_extrude10_tool
    add(cut_extrude10_tool.part, mode=Mode.SUBTRACT)

    # Sketch19 → Cut-Extrude11 (cut, two sides: drawn at the far end of the back side and taken through both)
    with BuildSketch(Plane.XY.offset(-CUT_EXTRUDE11_DEPTH_BACK)):
        with Locations((57.5, 405)):
            Rectangle(SKETCH19_W, SKETCH19_H)
        with Locations((447.5, 405)):
            Rectangle(SKETCH19_W_2, SKETCH19_H)
    extrude(amount=CUT_EXTRUDE11_DEPTH + CUT_EXTRUDE11_DEPTH_BACK, mode=Mode.SUBTRACT)

    # Sketch20 → Cut-Extrude12 (cut, two sides: drawn at the far end of the back side and taken through both)
    with BuildSketch(Plane.XY.offset(-CUT_EXTRUDE12_DEPTH_BACK)):
        with Locations((170, 342.5)):
            Rectangle(SKETCH20_W, SKETCH20_H)
    extrude(amount=CUT_EXTRUDE12_DEPTH + CUT_EXTRUDE12_DEPTH_BACK, mode=Mode.SUBTRACT)


with BuildPart() as body_2_1:
    add(body_2.part)

    # Cut-Extrude10: cut by cut_extrude10_tool
    add(cut_extrude10_tool.part, mode=Mode.SUBTRACT)


with BuildPart() as body_3_1:
    add(body_3.part)

    # Cut-Extrude10: cut by cut_extrude10_tool
    add(cut_extrude10_tool.part, mode=Mode.SUBTRACT)


with BuildPart() as body_4_1:
    add(body_4.part)

    # Cut-Extrude10: cut by cut_extrude10_tool
    add(cut_extrude10_tool.part, mode=Mode.SUBTRACT)


solid = part_1.part
